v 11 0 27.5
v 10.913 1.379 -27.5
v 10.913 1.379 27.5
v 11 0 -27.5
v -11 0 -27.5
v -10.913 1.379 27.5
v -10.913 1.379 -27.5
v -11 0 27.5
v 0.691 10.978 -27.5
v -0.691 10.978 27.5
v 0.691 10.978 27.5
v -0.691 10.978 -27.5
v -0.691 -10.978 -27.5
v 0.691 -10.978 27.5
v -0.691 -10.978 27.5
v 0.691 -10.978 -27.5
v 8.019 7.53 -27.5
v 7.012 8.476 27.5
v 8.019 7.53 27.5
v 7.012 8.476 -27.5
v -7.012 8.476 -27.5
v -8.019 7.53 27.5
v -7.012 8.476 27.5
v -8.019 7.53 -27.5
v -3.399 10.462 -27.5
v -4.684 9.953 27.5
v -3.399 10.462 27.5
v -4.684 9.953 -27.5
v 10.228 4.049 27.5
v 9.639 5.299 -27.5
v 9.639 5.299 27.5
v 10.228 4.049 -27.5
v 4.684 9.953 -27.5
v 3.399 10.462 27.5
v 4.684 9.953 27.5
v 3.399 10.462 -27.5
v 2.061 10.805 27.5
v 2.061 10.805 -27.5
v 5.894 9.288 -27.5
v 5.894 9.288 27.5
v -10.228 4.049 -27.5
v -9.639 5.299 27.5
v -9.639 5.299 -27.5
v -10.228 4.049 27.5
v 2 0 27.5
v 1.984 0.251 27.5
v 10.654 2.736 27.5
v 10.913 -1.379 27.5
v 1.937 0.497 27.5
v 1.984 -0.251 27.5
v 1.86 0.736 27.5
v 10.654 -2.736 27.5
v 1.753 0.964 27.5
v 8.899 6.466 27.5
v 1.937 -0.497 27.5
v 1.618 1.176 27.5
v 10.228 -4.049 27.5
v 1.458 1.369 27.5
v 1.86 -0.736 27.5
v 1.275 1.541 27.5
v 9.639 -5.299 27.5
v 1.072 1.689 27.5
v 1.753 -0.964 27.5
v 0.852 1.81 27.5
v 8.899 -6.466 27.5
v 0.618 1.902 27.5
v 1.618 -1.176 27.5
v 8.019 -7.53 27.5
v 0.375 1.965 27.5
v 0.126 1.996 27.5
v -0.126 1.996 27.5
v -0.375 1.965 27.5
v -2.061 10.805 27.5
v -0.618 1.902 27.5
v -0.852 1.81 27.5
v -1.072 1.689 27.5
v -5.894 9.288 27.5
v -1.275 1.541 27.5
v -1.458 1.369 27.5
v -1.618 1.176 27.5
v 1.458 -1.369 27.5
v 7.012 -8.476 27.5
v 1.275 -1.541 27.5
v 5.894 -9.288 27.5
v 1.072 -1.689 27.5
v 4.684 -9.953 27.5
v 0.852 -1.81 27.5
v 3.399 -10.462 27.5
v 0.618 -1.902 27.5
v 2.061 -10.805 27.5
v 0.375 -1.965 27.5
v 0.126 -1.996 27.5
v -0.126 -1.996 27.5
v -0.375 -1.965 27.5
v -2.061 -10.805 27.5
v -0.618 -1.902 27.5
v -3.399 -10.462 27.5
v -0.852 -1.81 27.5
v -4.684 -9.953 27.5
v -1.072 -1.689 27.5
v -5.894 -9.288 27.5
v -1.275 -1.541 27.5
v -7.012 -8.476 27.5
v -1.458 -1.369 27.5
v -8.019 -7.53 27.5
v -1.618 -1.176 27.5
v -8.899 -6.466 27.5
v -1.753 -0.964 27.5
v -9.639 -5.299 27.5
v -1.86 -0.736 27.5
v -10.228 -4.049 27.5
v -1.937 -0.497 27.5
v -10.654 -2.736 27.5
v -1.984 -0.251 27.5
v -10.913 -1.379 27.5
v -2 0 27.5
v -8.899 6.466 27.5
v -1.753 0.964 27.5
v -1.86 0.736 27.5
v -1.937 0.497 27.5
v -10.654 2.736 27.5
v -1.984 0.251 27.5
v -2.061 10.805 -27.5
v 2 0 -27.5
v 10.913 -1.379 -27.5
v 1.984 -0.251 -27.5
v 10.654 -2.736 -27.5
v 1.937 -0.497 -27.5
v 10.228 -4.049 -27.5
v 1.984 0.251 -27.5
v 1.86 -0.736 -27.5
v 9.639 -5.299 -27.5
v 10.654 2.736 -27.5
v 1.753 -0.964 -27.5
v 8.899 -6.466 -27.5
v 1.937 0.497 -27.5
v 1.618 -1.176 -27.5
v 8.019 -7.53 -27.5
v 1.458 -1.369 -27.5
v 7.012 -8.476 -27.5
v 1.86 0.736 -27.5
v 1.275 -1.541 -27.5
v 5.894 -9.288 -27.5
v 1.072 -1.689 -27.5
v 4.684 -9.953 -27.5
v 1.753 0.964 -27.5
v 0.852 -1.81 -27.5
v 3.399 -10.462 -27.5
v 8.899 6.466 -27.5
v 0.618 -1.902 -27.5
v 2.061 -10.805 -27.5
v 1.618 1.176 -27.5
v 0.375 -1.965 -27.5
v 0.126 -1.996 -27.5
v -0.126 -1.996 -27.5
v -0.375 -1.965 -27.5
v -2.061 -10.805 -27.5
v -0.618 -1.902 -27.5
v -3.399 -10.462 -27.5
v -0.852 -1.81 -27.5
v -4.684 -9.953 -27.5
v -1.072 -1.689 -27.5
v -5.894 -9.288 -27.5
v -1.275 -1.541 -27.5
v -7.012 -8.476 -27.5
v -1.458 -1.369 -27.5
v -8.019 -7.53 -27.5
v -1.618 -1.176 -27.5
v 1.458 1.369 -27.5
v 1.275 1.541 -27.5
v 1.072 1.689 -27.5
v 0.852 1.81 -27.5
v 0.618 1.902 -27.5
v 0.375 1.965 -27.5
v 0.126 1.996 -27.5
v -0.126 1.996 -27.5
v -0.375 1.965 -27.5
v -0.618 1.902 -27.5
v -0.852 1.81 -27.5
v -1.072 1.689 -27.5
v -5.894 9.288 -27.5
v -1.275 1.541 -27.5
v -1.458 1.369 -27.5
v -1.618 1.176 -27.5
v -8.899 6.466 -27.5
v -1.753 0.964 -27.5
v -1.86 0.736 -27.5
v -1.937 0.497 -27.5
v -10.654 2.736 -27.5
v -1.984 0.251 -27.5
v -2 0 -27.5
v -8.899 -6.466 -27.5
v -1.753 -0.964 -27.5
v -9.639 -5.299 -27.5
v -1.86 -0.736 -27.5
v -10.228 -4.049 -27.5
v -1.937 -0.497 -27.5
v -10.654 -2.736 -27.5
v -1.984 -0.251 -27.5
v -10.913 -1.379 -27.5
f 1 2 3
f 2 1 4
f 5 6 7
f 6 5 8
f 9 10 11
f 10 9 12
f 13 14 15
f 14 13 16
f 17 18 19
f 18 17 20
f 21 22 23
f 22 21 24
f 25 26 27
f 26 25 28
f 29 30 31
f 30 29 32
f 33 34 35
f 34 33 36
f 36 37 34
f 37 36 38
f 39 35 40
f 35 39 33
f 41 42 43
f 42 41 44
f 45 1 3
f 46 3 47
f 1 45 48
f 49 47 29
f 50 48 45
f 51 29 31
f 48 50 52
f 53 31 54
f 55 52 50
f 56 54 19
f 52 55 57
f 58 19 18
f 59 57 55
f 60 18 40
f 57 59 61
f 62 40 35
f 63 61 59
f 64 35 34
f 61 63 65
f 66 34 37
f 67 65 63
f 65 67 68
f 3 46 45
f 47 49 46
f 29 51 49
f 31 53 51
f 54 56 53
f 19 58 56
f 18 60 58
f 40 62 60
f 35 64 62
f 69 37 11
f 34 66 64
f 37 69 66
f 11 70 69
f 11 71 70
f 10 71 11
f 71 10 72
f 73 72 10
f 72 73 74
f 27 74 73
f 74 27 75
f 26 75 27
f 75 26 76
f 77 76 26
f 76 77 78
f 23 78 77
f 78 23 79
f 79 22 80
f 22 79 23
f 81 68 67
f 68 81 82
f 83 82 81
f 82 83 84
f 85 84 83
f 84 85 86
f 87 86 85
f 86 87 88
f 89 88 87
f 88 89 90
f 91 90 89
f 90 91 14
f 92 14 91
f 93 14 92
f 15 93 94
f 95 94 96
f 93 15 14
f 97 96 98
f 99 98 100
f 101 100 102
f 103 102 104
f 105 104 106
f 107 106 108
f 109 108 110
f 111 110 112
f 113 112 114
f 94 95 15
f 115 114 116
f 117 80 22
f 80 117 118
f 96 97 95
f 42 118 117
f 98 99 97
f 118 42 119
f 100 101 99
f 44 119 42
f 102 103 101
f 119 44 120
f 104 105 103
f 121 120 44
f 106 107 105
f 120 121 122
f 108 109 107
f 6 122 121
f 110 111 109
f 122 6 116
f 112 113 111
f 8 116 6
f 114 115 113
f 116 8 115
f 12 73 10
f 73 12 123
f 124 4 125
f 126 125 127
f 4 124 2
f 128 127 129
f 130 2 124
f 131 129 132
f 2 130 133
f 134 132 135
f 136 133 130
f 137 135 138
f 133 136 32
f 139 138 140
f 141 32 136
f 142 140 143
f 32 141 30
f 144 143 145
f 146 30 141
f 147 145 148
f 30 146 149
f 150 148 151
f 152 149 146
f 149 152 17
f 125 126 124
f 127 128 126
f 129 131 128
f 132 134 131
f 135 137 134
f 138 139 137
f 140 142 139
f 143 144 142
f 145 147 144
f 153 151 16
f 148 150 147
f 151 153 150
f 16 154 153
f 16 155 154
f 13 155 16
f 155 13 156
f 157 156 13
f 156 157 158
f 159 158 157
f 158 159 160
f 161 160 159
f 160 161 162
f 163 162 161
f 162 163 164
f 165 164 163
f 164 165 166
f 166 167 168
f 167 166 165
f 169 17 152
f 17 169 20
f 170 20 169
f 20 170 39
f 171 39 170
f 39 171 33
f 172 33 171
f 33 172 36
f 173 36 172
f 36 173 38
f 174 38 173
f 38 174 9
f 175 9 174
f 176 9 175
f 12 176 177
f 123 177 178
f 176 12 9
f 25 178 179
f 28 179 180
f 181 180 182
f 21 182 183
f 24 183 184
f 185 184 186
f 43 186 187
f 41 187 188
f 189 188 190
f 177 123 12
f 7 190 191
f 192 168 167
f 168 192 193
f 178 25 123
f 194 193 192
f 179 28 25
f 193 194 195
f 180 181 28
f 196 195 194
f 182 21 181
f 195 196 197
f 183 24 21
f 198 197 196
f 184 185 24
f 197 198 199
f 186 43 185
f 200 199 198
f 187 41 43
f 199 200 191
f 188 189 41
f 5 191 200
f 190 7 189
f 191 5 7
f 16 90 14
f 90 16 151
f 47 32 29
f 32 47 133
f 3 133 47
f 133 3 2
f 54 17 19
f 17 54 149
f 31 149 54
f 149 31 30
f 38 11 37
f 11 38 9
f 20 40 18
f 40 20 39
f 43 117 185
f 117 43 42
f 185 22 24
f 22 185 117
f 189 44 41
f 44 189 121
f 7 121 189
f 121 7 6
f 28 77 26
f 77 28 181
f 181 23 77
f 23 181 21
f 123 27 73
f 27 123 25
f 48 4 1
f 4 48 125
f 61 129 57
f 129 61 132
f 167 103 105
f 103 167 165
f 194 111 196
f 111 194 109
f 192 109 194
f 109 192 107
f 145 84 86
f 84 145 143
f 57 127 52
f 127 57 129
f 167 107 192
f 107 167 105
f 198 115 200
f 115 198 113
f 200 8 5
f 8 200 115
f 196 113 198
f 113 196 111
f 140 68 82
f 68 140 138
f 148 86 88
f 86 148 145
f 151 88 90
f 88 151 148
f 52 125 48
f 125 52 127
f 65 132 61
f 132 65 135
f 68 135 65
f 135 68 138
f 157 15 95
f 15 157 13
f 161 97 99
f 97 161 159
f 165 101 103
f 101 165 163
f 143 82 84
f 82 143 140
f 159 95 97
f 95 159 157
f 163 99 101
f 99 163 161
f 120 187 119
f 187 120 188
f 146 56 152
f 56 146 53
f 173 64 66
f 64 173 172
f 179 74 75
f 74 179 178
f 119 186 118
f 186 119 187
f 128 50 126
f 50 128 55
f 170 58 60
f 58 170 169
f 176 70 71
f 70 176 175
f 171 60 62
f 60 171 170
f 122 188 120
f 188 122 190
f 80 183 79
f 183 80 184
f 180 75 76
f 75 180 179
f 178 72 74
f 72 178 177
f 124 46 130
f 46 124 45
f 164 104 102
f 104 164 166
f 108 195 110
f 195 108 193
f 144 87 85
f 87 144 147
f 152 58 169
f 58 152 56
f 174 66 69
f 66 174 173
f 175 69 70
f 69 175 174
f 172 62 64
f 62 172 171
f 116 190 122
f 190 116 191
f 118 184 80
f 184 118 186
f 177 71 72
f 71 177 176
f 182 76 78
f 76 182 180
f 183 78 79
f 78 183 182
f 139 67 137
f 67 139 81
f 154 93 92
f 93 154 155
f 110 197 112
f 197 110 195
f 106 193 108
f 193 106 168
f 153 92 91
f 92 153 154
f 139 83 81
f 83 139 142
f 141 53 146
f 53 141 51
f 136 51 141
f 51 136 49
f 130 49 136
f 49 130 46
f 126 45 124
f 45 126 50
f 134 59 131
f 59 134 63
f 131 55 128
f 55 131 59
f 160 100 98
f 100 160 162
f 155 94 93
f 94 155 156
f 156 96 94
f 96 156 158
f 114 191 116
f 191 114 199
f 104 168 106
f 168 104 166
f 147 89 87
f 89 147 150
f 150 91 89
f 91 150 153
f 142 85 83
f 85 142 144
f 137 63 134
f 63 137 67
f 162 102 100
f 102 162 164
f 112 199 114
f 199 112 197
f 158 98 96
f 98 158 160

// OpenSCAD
$fn = 50;


difference() {
	union() {
		translate(v = [0, 0, -27.5000000000]) {
			cylinder(h = 55, r = 11.0000000000);
		}
	}
	union() {
		translate(v = [0, 0, -100.0000000000]) {
			cylinder(h = 200, r = 2);
		}
	}
}
